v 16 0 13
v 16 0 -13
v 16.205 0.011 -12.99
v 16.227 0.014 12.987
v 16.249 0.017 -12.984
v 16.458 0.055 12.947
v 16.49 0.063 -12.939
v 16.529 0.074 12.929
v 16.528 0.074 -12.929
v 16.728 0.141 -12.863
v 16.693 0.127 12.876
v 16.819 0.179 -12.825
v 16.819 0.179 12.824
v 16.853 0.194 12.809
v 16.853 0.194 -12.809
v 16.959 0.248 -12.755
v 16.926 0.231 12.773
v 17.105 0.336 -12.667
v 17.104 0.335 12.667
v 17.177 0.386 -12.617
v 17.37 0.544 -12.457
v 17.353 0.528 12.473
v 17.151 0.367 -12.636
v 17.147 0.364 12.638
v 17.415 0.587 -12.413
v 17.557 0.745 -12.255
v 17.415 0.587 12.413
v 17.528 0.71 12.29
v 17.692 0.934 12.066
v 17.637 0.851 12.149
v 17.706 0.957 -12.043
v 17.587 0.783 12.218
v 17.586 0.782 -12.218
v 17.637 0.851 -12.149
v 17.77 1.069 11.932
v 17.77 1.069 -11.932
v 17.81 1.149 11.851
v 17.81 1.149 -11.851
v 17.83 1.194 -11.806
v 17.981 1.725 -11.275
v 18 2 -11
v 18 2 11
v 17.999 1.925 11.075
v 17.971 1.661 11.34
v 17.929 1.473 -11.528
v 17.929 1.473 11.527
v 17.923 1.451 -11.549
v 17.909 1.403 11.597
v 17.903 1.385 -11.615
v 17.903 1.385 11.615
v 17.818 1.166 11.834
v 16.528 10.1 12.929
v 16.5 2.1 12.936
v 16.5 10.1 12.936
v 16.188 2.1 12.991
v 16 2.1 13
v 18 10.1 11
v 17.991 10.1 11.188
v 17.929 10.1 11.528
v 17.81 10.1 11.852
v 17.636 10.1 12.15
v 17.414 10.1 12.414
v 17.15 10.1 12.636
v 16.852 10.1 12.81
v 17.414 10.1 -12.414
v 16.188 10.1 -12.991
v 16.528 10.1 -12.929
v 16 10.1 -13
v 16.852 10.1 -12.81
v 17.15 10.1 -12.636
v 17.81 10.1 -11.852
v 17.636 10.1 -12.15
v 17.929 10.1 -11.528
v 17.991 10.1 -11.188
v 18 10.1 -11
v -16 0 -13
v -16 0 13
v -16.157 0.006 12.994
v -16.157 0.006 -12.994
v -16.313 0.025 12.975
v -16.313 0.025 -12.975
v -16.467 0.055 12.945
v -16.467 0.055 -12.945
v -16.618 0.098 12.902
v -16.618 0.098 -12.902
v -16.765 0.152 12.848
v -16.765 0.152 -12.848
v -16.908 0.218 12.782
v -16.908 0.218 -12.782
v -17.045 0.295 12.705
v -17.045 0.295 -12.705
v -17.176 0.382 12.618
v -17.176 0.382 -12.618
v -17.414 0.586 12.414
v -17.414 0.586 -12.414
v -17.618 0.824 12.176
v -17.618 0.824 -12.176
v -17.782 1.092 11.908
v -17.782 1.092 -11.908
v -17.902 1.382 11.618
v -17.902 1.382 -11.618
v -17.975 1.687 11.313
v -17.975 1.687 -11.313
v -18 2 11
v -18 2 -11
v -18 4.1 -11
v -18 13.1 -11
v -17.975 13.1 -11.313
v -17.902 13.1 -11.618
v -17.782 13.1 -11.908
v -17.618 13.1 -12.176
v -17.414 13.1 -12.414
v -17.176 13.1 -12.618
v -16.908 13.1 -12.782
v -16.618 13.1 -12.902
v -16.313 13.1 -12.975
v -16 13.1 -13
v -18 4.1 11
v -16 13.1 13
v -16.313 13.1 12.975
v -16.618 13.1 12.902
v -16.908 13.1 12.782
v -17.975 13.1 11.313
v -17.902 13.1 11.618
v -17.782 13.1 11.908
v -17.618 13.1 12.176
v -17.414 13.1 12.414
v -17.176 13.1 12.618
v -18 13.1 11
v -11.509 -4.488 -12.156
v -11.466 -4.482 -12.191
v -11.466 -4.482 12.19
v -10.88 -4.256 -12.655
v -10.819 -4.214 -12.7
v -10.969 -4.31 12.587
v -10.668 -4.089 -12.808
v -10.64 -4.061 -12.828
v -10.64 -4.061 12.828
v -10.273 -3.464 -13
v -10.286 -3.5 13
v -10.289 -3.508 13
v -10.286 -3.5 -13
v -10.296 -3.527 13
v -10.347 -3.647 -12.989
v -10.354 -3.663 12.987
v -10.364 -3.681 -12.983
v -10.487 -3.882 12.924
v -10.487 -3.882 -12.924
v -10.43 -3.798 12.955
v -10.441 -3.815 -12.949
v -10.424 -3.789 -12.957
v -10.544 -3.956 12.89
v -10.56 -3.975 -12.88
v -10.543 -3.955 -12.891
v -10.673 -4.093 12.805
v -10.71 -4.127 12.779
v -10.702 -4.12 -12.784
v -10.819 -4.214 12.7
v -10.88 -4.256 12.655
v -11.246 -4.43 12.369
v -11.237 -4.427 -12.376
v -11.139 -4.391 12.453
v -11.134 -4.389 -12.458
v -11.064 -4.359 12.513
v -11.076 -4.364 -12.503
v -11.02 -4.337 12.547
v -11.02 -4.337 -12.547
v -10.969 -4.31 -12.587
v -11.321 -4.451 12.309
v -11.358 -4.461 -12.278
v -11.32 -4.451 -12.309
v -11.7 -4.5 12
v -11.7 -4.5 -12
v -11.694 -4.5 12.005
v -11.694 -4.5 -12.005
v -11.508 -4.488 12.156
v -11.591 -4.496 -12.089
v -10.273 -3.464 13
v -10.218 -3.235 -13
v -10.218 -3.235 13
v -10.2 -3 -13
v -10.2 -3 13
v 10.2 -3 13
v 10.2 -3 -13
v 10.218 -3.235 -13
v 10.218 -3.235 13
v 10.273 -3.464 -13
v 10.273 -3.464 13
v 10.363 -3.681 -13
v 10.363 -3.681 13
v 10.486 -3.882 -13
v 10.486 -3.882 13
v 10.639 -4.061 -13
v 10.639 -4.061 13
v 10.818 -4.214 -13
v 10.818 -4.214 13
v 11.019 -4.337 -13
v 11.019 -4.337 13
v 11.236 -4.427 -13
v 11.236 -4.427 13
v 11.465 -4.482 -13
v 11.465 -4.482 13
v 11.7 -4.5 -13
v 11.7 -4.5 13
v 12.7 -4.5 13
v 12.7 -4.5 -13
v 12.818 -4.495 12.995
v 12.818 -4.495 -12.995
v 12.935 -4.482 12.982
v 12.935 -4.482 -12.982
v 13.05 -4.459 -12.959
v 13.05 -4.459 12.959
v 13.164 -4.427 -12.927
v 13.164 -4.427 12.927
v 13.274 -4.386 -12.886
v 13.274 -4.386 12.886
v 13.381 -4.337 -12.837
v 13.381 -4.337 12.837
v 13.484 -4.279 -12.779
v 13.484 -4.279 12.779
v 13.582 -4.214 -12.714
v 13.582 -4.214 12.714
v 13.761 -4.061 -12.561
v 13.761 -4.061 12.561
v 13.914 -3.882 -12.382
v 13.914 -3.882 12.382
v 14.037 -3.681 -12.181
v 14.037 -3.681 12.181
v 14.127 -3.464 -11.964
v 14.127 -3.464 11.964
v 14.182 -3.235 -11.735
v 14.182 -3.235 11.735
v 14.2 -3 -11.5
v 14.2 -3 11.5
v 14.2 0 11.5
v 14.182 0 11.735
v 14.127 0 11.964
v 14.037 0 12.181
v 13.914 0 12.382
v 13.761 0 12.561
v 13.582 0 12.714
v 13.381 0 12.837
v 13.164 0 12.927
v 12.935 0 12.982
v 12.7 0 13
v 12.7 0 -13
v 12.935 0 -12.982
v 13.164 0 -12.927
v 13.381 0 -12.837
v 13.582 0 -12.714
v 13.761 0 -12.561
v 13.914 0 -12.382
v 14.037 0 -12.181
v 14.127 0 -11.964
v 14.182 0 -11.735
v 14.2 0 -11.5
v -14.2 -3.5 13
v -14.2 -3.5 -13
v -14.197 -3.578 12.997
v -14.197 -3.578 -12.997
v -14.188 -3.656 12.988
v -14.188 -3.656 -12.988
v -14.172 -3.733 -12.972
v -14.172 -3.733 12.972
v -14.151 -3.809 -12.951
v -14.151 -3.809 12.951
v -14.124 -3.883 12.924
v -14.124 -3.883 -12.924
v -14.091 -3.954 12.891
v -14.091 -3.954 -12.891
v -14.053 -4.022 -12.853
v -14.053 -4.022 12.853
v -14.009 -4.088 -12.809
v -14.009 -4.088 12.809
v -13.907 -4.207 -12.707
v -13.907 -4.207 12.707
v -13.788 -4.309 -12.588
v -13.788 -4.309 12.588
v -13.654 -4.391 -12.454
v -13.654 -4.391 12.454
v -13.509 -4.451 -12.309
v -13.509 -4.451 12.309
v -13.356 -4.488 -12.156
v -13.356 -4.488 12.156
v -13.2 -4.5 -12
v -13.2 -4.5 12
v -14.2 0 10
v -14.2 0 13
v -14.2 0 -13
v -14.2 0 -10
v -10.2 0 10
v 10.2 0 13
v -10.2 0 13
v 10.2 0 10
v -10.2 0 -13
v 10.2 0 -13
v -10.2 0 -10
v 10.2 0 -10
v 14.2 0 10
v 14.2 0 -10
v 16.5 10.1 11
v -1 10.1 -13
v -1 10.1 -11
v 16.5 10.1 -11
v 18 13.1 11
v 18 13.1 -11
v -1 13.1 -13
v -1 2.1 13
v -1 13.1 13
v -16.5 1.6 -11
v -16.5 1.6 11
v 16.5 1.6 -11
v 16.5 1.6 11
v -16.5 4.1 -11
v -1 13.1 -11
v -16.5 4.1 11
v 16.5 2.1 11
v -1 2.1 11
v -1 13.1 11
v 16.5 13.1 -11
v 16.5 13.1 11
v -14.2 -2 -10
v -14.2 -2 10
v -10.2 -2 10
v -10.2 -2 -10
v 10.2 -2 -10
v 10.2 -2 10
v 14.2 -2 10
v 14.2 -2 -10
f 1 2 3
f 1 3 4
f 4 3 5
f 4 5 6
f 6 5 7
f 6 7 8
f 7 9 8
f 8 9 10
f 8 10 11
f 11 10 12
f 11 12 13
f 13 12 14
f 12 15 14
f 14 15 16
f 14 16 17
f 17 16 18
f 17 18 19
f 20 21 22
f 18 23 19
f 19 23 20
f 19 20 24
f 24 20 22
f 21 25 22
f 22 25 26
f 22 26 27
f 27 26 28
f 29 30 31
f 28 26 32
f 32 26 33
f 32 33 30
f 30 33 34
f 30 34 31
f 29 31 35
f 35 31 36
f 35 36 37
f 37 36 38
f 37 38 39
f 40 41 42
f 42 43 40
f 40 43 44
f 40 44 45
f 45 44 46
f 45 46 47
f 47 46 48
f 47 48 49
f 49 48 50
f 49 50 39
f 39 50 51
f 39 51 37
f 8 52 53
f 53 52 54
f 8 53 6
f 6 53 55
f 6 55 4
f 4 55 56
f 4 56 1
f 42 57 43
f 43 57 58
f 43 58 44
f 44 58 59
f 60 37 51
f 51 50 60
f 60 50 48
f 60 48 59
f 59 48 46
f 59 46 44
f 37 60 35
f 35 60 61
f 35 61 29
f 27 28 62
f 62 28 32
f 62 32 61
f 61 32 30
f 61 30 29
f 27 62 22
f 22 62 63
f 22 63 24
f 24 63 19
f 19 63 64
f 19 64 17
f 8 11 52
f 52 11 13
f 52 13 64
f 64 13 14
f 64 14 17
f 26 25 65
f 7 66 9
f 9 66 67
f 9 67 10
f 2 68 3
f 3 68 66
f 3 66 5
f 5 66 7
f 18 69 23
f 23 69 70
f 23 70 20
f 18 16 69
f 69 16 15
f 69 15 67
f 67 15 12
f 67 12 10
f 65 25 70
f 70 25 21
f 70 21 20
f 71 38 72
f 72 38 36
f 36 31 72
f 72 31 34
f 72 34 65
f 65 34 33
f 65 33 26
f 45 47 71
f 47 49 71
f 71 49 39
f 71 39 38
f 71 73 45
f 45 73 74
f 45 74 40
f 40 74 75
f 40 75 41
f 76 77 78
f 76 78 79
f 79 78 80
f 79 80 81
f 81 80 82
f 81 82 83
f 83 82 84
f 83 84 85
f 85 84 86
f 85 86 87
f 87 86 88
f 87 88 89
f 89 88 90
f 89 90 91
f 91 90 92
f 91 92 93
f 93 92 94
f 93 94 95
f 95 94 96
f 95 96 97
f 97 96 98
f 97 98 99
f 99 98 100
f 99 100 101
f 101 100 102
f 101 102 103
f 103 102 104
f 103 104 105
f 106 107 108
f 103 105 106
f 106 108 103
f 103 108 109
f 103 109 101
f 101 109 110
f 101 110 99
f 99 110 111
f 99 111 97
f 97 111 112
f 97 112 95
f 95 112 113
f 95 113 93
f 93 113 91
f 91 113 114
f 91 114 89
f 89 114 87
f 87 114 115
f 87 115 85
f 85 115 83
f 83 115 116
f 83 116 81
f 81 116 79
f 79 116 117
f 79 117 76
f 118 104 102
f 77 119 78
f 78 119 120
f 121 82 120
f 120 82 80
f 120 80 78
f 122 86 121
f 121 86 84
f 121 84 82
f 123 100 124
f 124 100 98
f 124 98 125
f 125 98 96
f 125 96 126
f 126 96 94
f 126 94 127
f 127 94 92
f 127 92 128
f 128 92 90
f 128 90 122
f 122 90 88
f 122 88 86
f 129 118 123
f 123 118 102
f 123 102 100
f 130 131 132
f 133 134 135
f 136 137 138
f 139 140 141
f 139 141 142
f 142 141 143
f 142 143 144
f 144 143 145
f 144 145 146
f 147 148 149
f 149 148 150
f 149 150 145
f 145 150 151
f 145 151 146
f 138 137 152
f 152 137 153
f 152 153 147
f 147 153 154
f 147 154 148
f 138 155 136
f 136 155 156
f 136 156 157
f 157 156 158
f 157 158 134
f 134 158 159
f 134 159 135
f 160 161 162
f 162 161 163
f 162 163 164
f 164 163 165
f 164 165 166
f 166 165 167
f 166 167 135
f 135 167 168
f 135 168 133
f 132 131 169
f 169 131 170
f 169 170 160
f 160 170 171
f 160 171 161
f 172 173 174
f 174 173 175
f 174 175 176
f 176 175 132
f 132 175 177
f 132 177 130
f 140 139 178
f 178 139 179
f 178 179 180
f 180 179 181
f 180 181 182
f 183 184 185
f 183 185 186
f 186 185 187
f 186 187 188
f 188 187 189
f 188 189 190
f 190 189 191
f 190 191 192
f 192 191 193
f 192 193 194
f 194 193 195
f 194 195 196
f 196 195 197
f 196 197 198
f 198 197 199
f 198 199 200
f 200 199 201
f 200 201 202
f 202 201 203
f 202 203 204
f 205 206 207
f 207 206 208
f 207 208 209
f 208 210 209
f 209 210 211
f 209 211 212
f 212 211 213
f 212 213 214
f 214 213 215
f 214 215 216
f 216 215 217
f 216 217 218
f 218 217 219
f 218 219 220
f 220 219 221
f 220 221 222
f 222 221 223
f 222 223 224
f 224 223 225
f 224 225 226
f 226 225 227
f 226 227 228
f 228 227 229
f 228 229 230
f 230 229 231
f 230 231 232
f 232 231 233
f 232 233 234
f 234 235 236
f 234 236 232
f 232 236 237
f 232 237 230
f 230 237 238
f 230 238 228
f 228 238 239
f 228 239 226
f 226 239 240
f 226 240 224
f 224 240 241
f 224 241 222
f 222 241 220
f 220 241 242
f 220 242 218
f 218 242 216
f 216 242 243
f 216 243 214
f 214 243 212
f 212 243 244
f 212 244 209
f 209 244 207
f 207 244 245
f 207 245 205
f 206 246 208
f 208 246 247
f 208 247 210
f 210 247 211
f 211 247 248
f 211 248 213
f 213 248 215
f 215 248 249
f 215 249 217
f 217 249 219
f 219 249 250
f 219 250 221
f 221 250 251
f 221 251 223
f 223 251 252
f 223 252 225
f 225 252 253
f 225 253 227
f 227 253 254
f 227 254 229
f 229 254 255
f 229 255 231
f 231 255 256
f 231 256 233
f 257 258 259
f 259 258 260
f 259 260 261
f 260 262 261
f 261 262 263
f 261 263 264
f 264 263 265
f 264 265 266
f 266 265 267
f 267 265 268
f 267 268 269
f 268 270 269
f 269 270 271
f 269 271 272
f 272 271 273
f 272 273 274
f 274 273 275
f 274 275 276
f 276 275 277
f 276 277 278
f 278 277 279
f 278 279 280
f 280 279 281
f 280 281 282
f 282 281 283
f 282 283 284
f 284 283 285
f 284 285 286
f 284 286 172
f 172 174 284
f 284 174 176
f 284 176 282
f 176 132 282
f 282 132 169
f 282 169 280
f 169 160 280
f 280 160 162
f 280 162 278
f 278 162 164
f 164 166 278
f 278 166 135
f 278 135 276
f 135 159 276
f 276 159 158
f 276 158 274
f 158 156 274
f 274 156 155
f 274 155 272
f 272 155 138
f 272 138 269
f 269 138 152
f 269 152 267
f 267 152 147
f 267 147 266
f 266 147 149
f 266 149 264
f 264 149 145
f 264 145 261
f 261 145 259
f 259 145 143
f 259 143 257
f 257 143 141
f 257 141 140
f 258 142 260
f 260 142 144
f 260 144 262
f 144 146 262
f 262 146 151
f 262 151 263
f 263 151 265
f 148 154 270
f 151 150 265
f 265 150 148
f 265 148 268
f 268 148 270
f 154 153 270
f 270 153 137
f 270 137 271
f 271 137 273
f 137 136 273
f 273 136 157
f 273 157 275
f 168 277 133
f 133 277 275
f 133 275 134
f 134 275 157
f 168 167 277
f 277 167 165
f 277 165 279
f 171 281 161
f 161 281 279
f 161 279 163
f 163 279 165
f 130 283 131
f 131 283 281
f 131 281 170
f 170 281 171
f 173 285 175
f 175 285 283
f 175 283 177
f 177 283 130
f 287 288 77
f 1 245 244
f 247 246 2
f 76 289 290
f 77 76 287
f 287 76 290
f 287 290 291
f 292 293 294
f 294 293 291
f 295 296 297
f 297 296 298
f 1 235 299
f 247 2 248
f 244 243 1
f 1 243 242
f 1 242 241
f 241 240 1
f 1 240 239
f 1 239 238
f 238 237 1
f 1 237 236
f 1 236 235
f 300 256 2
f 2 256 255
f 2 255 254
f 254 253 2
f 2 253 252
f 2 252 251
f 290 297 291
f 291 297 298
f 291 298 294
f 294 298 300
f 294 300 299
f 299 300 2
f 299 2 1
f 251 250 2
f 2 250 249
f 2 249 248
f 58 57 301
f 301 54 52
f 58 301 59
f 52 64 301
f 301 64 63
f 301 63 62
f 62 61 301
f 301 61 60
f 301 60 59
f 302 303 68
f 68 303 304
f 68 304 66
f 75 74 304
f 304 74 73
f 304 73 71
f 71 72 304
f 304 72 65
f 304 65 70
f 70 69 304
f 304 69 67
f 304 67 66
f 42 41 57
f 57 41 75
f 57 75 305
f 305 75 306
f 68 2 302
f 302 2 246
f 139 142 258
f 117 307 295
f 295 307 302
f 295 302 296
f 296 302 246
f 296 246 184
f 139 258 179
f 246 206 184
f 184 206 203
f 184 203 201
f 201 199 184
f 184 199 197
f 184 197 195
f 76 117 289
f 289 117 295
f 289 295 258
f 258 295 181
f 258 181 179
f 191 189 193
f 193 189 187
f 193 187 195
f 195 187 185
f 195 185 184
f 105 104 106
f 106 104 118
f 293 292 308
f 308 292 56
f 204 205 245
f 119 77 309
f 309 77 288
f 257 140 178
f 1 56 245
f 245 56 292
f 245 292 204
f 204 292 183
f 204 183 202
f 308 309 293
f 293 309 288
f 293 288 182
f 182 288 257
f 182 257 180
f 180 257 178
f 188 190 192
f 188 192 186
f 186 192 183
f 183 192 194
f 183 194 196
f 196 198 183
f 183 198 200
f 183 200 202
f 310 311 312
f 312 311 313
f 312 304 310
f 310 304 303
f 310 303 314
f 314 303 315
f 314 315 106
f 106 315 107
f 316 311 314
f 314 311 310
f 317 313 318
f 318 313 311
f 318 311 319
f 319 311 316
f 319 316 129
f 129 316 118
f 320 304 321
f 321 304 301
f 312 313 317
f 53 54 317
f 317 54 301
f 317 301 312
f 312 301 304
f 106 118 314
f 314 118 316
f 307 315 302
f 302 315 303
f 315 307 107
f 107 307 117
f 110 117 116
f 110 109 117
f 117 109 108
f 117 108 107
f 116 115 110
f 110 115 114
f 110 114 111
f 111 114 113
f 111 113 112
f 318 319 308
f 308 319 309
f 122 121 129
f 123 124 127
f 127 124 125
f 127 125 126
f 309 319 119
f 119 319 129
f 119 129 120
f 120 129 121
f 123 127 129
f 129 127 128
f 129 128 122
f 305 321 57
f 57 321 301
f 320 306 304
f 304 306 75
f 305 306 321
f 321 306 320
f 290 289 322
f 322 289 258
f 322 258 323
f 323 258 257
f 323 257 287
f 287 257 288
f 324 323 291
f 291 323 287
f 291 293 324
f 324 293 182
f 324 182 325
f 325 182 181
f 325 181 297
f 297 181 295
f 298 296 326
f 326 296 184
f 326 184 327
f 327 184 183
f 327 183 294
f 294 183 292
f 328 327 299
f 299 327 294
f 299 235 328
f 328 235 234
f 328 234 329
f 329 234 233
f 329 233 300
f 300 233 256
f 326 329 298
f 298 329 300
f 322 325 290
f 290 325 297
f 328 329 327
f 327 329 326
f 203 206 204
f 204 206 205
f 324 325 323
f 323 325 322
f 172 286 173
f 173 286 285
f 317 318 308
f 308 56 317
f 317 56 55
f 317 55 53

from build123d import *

# Parameters (mm, degrees)
SKETCH_1_W          = 36
SKETCH_1_H          = 26
EXTRUDE_1_DEPTH     = 14.6
SKETCH_2_W          = 33
SKETCH_2_H          = 22
CUT_EXTRUDE_1_DEPTH = 13
SKETCH_3_W          = 36
SKETCH_3_H          = 26
CUT_EXTRUDE_2_DEPTH = 4.5
SKETCH_4_W          = 1.5
SKETCH_4_H          = 22
CUT_EXTRUDE_3_DEPTH = 6
SKETCH_7_W          = 17
SKETCH_7_H          = 2
SKETCH_7_W_2        = 1.5
SKETCH_7_H_2        = 22
EXTRUDE_4_DEPTH     = 3
SKETCH_5_W          = 4
SKETCH_5_H          = 3
EXTRUDE_5_DEPTH     = 2
SKETCH_8_W          = 4
SKETCH_8_H          = 26
EXTRUDE_6_DEPTH     = 2.5
SKETCH_10_W         = 17.5
SKETCH_10_H         = 2
CUT_EXTRUDE_4_DEPTH = 8
FILLET_2_R          = 1
FILLET_3_R          = 1.5
FILLET_4_R          = 1.5
FILLET_5_R          = 1.5
FILLET_6_R          = 2
FILLET_7_R          = 2
FILLET_8_R          = 2
FILLET_START        = -14
FILLET_9_DEPTH      = 28


with BuildPart() as part:
    # 草图1 → 凸台-拉伸1 (new body)
    with BuildSketch(Plane(origin=(0, 0, 0), x_dir=(1, 0, 0), z_dir=(0, 1, 0))):
        Rectangle(SKETCH_1_W, SKETCH_1_H)
    extrude(amount=EXTRUDE_1_DEPTH)

    # 草图2 → 切除-拉伸1 (cut)
    with BuildSketch(Plane(origin=(0, 14.6, 0), x_dir=(1, 0, 0), z_dir=(0, 1, 0))):
        Rectangle(SKETCH_2_W, SKETCH_2_H)
    extrude(amount=-CUT_EXTRUDE_1_DEPTH, mode=Mode.SUBTRACT)

    # 草图3 → 切除-拉伸2 (cut)
    with BuildSketch(Plane(origin=(0, 14.6, 0), x_dir=(1, 0, 0), z_dir=(0, 1, 0))):
        Rectangle(SKETCH_3_W, SKETCH_3_H)
    extrude(amount=-CUT_EXTRUDE_2_DEPTH, mode=Mode.SUBTRACT)

    # 草图4 → 切除-拉伸3 (cut)
    with BuildSketch(Plane(origin=(0, 10.1, 0), x_dir=(1, 0, 0), z_dir=(0, 1, 0))):
        with Locations((-17.25, 0)):
            Rectangle(SKETCH_4_W, SKETCH_4_H)
    extrude(amount=-CUT_EXTRUDE_3_DEPTH, mode=Mode.SUBTRACT)

    # 草图7 → 凸台-拉伸4 (add)
    with BuildSketch(Plane(origin=(0, 10.1, 0), x_dir=(1, 0, 0), z_dir=(0, 1, 0))):
        with Locations((-9.5, 12)):
            Rectangle(SKETCH_7_W, SKETCH_7_H)
        with Locations((-9.5, -12)):
            Rectangle(SKETCH_7_W, SKETCH_7_H)
        with Locations((17.25, 0)):
            Rectangle(SKETCH_7_W_2, SKETCH_7_H_2)
    extrude(amount=EXTRUDE_4_DEPTH)

    # 草图5 → 凸台-拉伸5 (add)
    with BuildSketch(Plane(origin=(0, 0, 0), x_dir=(-1, 0, 0), z_dir=(0, -1, 0))):
        with Locations((-12.2, -11.5)):
            Rectangle(SKETCH_5_W, SKETCH_5_H)
        with Locations((12.2, -11.5)):
            Rectangle(SKETCH_5_W, SKETCH_5_H)
        with Locations((-12.2, 11.5)):
            Rectangle(SKETCH_5_W, SKETCH_5_H)
        with Locations((12.2, 11.5)):
            Rectangle(SKETCH_5_W, SKETCH_5_H)
    extrude(amount=EXTRUDE_5_DEPTH)

    # 草图8 → 凸台-拉伸6 (add)
    with BuildSketch(Plane(origin=(0, -2, 0), x_dir=(-1, 0, 0), z_dir=(0, -1, 0))):
        with Locations((-12.2, 0)):
            Rectangle(SKETCH_8_W, SKETCH_8_H)
        with Locations((12.2, 0)):
            Rectangle(SKETCH_8_W, SKETCH_8_H)
    extrude(amount=EXTRUDE_6_DEPTH)

    # 草图10 → 切除-拉伸4 (cut)
    with BuildSketch(Plane(origin=(0, 10.1, 0), x_dir=(1, 0, 0), z_dir=(0, 1, 0))):
        with Locations((7.75, -12)):
            Rectangle(SKETCH_10_W, SKETCH_10_H)
    extrude(amount=-CUT_EXTRUDE_4_DEPTH, mode=Mode.SUBTRACT)

    # 圆角2
    fillet_2_edges = [part.edges().sort_by_distance(p)[0] for p in [
        (-14.2, -4.5, 0),
        (-12.2, -4.5, -13),
        (-12.2, -4.5, 13),
    ]]
    fillet(fillet_2_edges, radius=FILLET_2_R)

    # 圆角3
    fillet_3_edges = [part.edges().sort_by_distance(p)[0] for p in [
        (14.2, -2.25, 13),
        (14.2, -2.25, -13),
        (14.2, -4.5, 0),
    ]]
    fillet(fillet_3_edges, radius=FILLET_3_R)

    # 圆角4
    fillet_4_edges = [part.edges().sort_by_distance(p)[0] for p in [
        (10.2, -4.5, 0),
    ]]
    fillet(fillet_4_edges, radius=FILLET_4_R)

    # 圆角5
    # the kernel refuses this fillet: 1.5 mm, written as the material it takes off along each edge
    with BuildSketch(Plane(origin=(-10.2, -4.5, 15.75), x_dir=(0, 1, 0), z_dir=(0, 0, -1))) as fillet_5_piece_1:
        with BuildLine():
            CenterArc((FILLET_5_R, -FILLET_5_R), FILLET_5_R, 90, 90)
            Line((0, -FILLET_5_R), (0, 0))
            Line((0, 0), (FILLET_5_R, 0))
        make_face()
    extrude(amount=31.5, mode=Mode.SUBTRACT)

    # 圆角6
    fillet_6_edges = [part.edges().sort_by_distance(p)[0] for p in [
        (-18, 6.55, 13),
        (-18, 6.55, -13),
        (-18, 0, 0),
    ]]
    fillet(fillet_6_edges, radius=FILLET_6_R)

    # 圆角7
    fillet_7_edges = [part.edges().sort_by_distance(p)[0] for p in [
        (18, 5.05, -13),
    ]]
    fillet(fillet_7_edges, radius=FILLET_7_R)

    # 圆角8
    fillet_8_edges = [part.edges().sort_by_distance(p)[0] for p in [
        (18, 5.05, 13),
    ]]
    fillet(fillet_8_edges, radius=FILLET_8_R)

    # 圆角9: read off the stored shape, not the designer's step
    # 圆角9 outline → 圆角9 (cut)
    with BuildSketch(Plane.XY.offset(FILLET_START)):
        with BuildLine():
            Line((18, 0), (18, 2))
            add(Edge.make_bspline(
                [(18, 2), (18, 0), (16, 0)],
                knots=[0, 0, 0, 1, 1, 1], degree=2, weights=[1, 0.707106781, 1]))
            Line((16, 0), (18, 0))
        make_face()
    extrude(amount=FILLET_9_DEPTH, mode=Mode.SUBTRACT)


solid = part.part
